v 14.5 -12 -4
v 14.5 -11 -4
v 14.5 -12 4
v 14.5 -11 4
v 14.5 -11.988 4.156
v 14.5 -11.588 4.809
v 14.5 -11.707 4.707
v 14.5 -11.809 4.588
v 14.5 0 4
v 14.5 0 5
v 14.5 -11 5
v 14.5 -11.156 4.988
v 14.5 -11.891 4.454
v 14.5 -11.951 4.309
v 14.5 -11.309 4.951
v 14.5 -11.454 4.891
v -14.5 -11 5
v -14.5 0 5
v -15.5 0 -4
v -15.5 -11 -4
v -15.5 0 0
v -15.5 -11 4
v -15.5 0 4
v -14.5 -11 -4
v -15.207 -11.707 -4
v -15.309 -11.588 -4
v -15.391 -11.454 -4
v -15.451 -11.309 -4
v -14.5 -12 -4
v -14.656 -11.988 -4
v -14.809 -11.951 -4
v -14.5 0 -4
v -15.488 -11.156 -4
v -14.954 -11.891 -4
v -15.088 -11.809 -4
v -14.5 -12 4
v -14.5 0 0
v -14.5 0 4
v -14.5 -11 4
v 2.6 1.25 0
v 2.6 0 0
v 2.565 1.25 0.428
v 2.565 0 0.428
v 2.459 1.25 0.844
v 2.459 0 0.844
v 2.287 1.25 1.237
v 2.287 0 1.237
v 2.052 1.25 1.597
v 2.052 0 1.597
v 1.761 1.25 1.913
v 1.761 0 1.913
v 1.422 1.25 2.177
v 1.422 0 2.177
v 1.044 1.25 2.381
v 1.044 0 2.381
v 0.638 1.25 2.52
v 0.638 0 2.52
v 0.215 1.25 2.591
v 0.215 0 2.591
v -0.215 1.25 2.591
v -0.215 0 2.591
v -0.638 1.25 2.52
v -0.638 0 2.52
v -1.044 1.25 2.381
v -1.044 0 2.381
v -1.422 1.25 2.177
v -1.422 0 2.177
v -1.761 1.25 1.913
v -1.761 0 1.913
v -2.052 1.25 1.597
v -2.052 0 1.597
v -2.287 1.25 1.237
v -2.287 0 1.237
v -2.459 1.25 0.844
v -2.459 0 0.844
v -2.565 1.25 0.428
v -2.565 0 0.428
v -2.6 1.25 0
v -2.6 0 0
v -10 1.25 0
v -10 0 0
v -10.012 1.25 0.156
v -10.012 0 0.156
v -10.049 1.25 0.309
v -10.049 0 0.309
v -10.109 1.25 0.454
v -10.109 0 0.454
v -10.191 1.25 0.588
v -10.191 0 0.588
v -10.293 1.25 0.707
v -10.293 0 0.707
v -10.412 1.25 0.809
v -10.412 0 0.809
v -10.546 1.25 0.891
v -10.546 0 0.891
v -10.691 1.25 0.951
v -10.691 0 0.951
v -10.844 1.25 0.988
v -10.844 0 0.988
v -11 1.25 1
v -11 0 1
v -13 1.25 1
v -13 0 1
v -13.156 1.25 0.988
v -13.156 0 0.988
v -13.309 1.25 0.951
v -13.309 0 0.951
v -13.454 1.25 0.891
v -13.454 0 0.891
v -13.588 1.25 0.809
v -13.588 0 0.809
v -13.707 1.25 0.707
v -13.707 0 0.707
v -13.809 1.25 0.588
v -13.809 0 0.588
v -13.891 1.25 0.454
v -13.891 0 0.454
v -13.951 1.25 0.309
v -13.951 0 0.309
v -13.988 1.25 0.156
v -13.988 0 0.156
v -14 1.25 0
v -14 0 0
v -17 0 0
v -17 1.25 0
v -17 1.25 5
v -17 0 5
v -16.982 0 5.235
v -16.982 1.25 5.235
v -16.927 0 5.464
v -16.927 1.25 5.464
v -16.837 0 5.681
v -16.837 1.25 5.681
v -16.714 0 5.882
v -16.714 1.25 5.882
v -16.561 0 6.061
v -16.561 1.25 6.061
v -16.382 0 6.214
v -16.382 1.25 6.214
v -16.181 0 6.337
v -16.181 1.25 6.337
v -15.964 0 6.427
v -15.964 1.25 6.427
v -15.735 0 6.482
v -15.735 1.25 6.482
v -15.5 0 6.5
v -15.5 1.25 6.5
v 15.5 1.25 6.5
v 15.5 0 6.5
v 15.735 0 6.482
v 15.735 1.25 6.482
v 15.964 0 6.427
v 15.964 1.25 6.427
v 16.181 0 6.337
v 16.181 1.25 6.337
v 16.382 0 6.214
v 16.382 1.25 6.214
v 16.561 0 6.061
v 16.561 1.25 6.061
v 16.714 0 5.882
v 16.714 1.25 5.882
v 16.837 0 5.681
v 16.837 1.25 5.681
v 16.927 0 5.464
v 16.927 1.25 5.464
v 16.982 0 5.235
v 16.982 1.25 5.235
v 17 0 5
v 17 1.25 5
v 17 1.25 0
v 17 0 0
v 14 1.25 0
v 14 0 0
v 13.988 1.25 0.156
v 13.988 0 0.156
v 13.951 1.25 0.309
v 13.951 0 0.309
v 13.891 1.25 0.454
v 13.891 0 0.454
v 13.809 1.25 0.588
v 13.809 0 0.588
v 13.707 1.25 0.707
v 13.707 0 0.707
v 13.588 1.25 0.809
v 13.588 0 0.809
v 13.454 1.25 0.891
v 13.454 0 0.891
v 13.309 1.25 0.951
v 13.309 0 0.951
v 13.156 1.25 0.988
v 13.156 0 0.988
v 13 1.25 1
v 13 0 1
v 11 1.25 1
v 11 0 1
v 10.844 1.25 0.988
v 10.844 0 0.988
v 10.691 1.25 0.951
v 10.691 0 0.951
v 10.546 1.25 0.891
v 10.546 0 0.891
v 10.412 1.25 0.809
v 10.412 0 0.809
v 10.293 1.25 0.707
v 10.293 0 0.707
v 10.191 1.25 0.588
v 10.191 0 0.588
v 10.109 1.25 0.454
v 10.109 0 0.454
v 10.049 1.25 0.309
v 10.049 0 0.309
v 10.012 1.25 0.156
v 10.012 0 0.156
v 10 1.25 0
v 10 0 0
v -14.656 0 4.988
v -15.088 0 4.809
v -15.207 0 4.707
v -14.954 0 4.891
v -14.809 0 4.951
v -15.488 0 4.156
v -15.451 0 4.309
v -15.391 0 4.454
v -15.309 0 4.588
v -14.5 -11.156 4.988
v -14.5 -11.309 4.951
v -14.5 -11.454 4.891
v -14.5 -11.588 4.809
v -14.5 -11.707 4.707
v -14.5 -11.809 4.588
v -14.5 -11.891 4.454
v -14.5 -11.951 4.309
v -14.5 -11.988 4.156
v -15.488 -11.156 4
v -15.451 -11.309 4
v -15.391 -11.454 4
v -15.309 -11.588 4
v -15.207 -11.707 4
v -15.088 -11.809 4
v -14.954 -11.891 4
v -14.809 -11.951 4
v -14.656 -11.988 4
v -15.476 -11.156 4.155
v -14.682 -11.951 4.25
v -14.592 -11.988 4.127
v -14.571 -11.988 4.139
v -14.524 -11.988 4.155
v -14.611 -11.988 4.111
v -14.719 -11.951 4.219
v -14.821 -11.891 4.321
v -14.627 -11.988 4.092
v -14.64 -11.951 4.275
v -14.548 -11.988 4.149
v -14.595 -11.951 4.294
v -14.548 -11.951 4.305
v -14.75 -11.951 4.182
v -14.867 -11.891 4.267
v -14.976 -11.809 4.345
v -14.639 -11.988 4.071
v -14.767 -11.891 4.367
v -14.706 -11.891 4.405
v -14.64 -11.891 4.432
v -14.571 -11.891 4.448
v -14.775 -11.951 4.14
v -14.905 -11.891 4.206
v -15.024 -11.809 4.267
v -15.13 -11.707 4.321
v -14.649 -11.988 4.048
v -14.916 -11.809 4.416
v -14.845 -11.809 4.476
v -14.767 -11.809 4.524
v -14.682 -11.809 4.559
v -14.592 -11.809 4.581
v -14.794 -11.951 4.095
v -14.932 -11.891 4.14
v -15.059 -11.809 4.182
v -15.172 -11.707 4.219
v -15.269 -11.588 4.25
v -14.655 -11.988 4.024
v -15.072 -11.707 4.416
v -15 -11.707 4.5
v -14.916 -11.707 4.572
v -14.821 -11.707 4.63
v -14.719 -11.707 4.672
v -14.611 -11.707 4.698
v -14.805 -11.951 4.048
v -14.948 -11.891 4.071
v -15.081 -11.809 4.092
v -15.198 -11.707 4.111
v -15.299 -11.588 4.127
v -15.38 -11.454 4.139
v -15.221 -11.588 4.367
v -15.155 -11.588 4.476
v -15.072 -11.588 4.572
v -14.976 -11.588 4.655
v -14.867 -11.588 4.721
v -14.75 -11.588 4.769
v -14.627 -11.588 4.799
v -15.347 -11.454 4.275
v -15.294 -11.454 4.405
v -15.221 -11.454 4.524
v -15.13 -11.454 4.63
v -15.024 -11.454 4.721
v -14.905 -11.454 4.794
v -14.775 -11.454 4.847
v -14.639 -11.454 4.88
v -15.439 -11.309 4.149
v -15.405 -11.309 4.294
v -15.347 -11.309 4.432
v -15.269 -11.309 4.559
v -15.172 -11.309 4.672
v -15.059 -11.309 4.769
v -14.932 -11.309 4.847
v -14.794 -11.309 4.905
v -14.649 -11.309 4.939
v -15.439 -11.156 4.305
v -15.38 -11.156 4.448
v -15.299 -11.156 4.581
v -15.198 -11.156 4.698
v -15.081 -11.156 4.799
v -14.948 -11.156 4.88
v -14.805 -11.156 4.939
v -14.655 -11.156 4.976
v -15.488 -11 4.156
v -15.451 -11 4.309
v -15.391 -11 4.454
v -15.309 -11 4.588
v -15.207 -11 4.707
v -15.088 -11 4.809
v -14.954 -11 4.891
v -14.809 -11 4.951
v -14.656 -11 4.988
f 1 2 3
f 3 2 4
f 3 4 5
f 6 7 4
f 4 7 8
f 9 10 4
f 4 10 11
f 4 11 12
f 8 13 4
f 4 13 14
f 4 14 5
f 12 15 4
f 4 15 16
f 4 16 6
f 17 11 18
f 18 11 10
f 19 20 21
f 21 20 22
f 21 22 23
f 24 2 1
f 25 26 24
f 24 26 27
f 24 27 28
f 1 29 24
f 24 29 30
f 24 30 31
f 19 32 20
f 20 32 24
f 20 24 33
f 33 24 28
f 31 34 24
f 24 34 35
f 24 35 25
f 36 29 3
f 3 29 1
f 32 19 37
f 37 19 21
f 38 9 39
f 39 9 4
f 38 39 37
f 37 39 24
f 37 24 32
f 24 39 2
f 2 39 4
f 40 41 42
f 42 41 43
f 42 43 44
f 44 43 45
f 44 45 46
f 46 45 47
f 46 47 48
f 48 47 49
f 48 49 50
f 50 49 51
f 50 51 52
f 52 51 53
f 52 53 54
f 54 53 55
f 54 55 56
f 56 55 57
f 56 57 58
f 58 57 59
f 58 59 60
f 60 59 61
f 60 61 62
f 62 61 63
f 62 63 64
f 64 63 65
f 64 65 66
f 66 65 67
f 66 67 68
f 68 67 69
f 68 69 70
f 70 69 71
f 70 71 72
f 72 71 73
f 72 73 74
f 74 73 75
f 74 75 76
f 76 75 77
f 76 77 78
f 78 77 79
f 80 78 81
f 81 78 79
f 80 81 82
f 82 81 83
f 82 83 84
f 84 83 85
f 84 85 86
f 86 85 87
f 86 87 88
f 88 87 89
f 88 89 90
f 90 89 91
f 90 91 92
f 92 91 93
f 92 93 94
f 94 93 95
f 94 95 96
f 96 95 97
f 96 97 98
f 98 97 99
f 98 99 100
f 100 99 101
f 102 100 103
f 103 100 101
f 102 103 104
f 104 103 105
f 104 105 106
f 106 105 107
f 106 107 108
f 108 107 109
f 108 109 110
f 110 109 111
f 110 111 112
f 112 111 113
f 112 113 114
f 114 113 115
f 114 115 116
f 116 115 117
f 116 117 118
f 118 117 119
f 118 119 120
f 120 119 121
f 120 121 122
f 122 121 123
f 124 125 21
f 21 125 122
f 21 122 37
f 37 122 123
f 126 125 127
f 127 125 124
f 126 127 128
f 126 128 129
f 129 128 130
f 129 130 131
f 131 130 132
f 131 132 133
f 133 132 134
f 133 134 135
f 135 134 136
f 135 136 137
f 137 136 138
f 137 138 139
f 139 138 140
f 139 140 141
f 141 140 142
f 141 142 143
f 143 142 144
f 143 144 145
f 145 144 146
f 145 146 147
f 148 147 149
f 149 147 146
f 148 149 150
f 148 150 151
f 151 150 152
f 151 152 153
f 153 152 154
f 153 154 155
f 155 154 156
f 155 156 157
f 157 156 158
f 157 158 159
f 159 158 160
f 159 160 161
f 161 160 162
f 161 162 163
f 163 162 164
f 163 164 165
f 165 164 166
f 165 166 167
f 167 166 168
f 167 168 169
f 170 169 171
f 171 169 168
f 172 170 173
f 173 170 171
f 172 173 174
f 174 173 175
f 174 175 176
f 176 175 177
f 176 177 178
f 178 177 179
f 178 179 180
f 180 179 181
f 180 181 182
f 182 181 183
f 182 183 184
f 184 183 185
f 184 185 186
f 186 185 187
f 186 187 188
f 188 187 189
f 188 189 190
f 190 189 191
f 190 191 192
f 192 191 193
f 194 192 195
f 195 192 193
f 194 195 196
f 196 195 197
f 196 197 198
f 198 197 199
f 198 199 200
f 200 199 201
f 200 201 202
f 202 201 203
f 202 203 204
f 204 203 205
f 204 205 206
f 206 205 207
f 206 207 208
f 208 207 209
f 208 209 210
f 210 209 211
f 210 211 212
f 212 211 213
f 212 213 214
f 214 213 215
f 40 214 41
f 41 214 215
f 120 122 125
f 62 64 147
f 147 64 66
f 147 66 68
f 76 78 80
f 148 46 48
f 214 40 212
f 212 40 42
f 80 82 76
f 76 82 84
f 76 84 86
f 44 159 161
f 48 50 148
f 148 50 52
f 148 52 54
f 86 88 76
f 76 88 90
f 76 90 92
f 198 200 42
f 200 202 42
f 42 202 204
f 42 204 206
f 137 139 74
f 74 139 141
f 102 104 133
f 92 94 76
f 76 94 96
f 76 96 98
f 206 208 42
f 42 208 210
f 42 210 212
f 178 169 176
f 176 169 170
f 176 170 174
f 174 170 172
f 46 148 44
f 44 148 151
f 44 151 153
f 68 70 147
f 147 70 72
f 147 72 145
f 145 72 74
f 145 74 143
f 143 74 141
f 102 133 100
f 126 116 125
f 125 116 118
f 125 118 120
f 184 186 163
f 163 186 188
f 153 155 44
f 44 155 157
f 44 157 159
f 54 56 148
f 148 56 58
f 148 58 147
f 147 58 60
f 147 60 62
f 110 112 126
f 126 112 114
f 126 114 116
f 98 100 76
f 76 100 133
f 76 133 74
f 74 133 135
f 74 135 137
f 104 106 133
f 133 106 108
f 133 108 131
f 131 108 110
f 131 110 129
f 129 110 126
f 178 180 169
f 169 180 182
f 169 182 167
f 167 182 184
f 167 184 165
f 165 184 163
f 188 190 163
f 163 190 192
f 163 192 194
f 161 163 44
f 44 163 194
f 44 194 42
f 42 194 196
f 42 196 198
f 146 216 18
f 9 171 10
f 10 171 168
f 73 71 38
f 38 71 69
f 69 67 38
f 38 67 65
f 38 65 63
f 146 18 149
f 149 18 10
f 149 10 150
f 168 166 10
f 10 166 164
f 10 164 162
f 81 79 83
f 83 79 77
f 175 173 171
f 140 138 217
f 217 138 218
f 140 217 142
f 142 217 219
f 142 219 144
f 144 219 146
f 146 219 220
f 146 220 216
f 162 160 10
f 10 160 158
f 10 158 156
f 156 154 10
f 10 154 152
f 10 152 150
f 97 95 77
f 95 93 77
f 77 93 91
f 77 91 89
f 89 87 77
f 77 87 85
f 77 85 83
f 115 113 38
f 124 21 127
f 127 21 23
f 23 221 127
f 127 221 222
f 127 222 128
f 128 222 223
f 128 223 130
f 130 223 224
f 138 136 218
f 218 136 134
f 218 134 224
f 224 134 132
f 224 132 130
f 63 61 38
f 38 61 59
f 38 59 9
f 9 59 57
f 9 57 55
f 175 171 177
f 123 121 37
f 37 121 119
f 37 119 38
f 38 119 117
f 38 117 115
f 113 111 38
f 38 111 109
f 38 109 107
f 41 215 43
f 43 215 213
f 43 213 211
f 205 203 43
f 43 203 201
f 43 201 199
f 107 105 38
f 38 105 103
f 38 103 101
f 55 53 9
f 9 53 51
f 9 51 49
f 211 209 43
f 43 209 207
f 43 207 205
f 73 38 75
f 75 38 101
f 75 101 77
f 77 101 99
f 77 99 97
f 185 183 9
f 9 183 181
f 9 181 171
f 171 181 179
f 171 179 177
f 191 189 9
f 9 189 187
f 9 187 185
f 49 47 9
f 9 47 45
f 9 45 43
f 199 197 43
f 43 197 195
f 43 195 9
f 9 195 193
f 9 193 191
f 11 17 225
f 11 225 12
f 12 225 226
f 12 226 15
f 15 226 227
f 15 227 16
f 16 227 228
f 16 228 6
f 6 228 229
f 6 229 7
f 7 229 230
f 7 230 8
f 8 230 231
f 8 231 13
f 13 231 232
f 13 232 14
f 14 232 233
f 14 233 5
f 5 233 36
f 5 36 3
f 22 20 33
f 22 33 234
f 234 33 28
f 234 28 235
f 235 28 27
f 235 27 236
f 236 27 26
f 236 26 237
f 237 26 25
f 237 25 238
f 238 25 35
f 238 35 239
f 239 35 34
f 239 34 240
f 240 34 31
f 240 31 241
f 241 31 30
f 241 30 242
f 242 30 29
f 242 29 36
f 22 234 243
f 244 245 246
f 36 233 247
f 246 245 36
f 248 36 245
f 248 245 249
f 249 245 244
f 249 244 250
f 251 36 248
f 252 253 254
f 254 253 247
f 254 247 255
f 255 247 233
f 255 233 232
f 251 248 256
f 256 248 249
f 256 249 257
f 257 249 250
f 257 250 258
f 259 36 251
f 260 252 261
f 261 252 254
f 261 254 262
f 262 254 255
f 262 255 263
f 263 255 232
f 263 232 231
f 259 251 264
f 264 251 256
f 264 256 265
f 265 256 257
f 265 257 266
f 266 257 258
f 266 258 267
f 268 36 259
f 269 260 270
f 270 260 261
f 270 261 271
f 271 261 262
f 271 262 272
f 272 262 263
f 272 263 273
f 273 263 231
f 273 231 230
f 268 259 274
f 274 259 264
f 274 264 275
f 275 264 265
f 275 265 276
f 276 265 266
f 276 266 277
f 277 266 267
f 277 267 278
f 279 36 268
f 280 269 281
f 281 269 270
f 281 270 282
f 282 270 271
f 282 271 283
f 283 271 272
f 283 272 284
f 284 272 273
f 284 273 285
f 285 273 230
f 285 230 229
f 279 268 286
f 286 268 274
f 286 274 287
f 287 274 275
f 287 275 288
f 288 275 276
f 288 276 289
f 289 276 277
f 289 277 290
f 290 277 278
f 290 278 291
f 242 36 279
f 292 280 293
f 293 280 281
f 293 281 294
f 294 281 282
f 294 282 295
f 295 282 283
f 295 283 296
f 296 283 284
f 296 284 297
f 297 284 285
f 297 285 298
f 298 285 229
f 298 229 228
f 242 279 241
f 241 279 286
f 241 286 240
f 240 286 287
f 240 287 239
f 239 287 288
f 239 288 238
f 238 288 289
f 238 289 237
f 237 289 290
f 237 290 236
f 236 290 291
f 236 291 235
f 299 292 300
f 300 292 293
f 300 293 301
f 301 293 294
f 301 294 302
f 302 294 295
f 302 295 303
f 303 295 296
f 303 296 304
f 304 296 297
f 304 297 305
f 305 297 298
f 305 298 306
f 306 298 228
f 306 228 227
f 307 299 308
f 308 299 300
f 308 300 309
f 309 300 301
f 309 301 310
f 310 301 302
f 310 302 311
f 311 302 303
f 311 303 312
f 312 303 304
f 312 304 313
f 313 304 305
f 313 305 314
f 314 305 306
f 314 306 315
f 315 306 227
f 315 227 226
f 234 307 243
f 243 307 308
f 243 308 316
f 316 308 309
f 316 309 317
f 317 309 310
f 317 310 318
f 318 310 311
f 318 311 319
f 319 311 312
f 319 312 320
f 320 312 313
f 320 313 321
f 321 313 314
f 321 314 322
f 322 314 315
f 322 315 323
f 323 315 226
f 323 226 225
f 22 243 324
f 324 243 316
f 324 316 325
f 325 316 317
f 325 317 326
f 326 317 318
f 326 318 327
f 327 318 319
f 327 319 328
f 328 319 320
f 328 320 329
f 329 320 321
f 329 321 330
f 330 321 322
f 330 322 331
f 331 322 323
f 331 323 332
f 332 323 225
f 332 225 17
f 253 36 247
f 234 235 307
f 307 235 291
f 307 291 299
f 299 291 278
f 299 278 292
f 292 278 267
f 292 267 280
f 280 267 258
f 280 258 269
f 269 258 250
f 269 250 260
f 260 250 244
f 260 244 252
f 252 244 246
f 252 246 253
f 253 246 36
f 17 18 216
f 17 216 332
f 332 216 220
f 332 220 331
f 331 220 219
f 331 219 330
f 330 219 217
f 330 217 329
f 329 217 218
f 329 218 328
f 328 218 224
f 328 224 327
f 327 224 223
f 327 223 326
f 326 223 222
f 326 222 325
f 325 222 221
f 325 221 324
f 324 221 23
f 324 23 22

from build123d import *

# Parameters (mm, degrees)
SKETCH_1_W          = 30
SKETCH_1_H          = 9
EXTRUDE_3_DEPTH     = 12
SKETCH_5_W          = 29
SKETCH_5_H          = 8
CUT_EXTRUDE_4_DEPTH = 11
EXTRUDE_5_DEPTH     = 1.25
FILLET_4_R          = 1


with BuildPart() as part:
    # 草图1 → 凸台-拉伸3 (new body)
    with BuildSketch(Plane(origin=(0, 0, 0), x_dir=(1, 0, 0), z_dir=(0, 1, 0))):
        with Locations((-0.5, -0.5)):
            Rectangle(SKETCH_1_W, SKETCH_1_H)
    extrude(amount=-EXTRUDE_3_DEPTH)

    # 草图5 → 切除-拉伸4 (cut)
    with BuildSketch(Plane(origin=(0, 0, 0), x_dir=(1, 0, 0), z_dir=(0, 1, 0))):
        Rectangle(SKETCH_5_W, SKETCH_5_H)
    extrude(amount=-CUT_EXTRUDE_4_DEPTH, mode=Mode.SUBTRACT)

    # 草图6 → 凸台-拉伸5 (add)
    with BuildSketch(Plane(origin=(0, 0, 0), x_dir=(1, 0, 0), z_dir=(0, 1, 0))):
        with BuildLine():
            Line((-17, 0), (-14, 0))
            ThreePointArc((-14, 0), (-13.707106781, -0.707106781), (-13, -1))
            Line((-13, -1), (-11, -1))
            ThreePointArc((-11, -1), (-10.292893219, -0.707106781), (-10, 0))
            Line((-10, 0), (-2.6, 0))
            ThreePointArc((-2.6, 0), (0, -2.6), (2.6, 0))
            Line((2.6, 0), (10, 0))
            ThreePointArc((10, 0), (10.292893219, -0.707106781), (11, -1))
            Line((11, -1), (13, -1))
            ThreePointArc((13, -1), (13.707106781, -0.707106781), (14, 0))
            Line((14, 0), (17, 0))
            Line((17, 0), (17, -5))
            ThreePointArc((17, -5), (16.560660172, -6.060660172), (15.5, -6.5))
            Line((15.5, -6.5), (-15.5, -6.5))
            ThreePointArc((-15.5, -6.5), (-16.560660172, -6.060660172), (-17, -5))
            Line((-17, -5), (-17, 0))
        make_face()
    extrude(amount=EXTRUDE_5_DEPTH)

    # 圆角4
    fillet_4_edges = [part.edges().sort_by_distance(p)[0] for p in [
        (-15.5, -12, 0.5),
        (-0.5, -12, 5),
        (-15.5, -6, 5),
    ]]
    fillet(fillet_4_edges, radius=FILLET_4_R)


solid = part.part
